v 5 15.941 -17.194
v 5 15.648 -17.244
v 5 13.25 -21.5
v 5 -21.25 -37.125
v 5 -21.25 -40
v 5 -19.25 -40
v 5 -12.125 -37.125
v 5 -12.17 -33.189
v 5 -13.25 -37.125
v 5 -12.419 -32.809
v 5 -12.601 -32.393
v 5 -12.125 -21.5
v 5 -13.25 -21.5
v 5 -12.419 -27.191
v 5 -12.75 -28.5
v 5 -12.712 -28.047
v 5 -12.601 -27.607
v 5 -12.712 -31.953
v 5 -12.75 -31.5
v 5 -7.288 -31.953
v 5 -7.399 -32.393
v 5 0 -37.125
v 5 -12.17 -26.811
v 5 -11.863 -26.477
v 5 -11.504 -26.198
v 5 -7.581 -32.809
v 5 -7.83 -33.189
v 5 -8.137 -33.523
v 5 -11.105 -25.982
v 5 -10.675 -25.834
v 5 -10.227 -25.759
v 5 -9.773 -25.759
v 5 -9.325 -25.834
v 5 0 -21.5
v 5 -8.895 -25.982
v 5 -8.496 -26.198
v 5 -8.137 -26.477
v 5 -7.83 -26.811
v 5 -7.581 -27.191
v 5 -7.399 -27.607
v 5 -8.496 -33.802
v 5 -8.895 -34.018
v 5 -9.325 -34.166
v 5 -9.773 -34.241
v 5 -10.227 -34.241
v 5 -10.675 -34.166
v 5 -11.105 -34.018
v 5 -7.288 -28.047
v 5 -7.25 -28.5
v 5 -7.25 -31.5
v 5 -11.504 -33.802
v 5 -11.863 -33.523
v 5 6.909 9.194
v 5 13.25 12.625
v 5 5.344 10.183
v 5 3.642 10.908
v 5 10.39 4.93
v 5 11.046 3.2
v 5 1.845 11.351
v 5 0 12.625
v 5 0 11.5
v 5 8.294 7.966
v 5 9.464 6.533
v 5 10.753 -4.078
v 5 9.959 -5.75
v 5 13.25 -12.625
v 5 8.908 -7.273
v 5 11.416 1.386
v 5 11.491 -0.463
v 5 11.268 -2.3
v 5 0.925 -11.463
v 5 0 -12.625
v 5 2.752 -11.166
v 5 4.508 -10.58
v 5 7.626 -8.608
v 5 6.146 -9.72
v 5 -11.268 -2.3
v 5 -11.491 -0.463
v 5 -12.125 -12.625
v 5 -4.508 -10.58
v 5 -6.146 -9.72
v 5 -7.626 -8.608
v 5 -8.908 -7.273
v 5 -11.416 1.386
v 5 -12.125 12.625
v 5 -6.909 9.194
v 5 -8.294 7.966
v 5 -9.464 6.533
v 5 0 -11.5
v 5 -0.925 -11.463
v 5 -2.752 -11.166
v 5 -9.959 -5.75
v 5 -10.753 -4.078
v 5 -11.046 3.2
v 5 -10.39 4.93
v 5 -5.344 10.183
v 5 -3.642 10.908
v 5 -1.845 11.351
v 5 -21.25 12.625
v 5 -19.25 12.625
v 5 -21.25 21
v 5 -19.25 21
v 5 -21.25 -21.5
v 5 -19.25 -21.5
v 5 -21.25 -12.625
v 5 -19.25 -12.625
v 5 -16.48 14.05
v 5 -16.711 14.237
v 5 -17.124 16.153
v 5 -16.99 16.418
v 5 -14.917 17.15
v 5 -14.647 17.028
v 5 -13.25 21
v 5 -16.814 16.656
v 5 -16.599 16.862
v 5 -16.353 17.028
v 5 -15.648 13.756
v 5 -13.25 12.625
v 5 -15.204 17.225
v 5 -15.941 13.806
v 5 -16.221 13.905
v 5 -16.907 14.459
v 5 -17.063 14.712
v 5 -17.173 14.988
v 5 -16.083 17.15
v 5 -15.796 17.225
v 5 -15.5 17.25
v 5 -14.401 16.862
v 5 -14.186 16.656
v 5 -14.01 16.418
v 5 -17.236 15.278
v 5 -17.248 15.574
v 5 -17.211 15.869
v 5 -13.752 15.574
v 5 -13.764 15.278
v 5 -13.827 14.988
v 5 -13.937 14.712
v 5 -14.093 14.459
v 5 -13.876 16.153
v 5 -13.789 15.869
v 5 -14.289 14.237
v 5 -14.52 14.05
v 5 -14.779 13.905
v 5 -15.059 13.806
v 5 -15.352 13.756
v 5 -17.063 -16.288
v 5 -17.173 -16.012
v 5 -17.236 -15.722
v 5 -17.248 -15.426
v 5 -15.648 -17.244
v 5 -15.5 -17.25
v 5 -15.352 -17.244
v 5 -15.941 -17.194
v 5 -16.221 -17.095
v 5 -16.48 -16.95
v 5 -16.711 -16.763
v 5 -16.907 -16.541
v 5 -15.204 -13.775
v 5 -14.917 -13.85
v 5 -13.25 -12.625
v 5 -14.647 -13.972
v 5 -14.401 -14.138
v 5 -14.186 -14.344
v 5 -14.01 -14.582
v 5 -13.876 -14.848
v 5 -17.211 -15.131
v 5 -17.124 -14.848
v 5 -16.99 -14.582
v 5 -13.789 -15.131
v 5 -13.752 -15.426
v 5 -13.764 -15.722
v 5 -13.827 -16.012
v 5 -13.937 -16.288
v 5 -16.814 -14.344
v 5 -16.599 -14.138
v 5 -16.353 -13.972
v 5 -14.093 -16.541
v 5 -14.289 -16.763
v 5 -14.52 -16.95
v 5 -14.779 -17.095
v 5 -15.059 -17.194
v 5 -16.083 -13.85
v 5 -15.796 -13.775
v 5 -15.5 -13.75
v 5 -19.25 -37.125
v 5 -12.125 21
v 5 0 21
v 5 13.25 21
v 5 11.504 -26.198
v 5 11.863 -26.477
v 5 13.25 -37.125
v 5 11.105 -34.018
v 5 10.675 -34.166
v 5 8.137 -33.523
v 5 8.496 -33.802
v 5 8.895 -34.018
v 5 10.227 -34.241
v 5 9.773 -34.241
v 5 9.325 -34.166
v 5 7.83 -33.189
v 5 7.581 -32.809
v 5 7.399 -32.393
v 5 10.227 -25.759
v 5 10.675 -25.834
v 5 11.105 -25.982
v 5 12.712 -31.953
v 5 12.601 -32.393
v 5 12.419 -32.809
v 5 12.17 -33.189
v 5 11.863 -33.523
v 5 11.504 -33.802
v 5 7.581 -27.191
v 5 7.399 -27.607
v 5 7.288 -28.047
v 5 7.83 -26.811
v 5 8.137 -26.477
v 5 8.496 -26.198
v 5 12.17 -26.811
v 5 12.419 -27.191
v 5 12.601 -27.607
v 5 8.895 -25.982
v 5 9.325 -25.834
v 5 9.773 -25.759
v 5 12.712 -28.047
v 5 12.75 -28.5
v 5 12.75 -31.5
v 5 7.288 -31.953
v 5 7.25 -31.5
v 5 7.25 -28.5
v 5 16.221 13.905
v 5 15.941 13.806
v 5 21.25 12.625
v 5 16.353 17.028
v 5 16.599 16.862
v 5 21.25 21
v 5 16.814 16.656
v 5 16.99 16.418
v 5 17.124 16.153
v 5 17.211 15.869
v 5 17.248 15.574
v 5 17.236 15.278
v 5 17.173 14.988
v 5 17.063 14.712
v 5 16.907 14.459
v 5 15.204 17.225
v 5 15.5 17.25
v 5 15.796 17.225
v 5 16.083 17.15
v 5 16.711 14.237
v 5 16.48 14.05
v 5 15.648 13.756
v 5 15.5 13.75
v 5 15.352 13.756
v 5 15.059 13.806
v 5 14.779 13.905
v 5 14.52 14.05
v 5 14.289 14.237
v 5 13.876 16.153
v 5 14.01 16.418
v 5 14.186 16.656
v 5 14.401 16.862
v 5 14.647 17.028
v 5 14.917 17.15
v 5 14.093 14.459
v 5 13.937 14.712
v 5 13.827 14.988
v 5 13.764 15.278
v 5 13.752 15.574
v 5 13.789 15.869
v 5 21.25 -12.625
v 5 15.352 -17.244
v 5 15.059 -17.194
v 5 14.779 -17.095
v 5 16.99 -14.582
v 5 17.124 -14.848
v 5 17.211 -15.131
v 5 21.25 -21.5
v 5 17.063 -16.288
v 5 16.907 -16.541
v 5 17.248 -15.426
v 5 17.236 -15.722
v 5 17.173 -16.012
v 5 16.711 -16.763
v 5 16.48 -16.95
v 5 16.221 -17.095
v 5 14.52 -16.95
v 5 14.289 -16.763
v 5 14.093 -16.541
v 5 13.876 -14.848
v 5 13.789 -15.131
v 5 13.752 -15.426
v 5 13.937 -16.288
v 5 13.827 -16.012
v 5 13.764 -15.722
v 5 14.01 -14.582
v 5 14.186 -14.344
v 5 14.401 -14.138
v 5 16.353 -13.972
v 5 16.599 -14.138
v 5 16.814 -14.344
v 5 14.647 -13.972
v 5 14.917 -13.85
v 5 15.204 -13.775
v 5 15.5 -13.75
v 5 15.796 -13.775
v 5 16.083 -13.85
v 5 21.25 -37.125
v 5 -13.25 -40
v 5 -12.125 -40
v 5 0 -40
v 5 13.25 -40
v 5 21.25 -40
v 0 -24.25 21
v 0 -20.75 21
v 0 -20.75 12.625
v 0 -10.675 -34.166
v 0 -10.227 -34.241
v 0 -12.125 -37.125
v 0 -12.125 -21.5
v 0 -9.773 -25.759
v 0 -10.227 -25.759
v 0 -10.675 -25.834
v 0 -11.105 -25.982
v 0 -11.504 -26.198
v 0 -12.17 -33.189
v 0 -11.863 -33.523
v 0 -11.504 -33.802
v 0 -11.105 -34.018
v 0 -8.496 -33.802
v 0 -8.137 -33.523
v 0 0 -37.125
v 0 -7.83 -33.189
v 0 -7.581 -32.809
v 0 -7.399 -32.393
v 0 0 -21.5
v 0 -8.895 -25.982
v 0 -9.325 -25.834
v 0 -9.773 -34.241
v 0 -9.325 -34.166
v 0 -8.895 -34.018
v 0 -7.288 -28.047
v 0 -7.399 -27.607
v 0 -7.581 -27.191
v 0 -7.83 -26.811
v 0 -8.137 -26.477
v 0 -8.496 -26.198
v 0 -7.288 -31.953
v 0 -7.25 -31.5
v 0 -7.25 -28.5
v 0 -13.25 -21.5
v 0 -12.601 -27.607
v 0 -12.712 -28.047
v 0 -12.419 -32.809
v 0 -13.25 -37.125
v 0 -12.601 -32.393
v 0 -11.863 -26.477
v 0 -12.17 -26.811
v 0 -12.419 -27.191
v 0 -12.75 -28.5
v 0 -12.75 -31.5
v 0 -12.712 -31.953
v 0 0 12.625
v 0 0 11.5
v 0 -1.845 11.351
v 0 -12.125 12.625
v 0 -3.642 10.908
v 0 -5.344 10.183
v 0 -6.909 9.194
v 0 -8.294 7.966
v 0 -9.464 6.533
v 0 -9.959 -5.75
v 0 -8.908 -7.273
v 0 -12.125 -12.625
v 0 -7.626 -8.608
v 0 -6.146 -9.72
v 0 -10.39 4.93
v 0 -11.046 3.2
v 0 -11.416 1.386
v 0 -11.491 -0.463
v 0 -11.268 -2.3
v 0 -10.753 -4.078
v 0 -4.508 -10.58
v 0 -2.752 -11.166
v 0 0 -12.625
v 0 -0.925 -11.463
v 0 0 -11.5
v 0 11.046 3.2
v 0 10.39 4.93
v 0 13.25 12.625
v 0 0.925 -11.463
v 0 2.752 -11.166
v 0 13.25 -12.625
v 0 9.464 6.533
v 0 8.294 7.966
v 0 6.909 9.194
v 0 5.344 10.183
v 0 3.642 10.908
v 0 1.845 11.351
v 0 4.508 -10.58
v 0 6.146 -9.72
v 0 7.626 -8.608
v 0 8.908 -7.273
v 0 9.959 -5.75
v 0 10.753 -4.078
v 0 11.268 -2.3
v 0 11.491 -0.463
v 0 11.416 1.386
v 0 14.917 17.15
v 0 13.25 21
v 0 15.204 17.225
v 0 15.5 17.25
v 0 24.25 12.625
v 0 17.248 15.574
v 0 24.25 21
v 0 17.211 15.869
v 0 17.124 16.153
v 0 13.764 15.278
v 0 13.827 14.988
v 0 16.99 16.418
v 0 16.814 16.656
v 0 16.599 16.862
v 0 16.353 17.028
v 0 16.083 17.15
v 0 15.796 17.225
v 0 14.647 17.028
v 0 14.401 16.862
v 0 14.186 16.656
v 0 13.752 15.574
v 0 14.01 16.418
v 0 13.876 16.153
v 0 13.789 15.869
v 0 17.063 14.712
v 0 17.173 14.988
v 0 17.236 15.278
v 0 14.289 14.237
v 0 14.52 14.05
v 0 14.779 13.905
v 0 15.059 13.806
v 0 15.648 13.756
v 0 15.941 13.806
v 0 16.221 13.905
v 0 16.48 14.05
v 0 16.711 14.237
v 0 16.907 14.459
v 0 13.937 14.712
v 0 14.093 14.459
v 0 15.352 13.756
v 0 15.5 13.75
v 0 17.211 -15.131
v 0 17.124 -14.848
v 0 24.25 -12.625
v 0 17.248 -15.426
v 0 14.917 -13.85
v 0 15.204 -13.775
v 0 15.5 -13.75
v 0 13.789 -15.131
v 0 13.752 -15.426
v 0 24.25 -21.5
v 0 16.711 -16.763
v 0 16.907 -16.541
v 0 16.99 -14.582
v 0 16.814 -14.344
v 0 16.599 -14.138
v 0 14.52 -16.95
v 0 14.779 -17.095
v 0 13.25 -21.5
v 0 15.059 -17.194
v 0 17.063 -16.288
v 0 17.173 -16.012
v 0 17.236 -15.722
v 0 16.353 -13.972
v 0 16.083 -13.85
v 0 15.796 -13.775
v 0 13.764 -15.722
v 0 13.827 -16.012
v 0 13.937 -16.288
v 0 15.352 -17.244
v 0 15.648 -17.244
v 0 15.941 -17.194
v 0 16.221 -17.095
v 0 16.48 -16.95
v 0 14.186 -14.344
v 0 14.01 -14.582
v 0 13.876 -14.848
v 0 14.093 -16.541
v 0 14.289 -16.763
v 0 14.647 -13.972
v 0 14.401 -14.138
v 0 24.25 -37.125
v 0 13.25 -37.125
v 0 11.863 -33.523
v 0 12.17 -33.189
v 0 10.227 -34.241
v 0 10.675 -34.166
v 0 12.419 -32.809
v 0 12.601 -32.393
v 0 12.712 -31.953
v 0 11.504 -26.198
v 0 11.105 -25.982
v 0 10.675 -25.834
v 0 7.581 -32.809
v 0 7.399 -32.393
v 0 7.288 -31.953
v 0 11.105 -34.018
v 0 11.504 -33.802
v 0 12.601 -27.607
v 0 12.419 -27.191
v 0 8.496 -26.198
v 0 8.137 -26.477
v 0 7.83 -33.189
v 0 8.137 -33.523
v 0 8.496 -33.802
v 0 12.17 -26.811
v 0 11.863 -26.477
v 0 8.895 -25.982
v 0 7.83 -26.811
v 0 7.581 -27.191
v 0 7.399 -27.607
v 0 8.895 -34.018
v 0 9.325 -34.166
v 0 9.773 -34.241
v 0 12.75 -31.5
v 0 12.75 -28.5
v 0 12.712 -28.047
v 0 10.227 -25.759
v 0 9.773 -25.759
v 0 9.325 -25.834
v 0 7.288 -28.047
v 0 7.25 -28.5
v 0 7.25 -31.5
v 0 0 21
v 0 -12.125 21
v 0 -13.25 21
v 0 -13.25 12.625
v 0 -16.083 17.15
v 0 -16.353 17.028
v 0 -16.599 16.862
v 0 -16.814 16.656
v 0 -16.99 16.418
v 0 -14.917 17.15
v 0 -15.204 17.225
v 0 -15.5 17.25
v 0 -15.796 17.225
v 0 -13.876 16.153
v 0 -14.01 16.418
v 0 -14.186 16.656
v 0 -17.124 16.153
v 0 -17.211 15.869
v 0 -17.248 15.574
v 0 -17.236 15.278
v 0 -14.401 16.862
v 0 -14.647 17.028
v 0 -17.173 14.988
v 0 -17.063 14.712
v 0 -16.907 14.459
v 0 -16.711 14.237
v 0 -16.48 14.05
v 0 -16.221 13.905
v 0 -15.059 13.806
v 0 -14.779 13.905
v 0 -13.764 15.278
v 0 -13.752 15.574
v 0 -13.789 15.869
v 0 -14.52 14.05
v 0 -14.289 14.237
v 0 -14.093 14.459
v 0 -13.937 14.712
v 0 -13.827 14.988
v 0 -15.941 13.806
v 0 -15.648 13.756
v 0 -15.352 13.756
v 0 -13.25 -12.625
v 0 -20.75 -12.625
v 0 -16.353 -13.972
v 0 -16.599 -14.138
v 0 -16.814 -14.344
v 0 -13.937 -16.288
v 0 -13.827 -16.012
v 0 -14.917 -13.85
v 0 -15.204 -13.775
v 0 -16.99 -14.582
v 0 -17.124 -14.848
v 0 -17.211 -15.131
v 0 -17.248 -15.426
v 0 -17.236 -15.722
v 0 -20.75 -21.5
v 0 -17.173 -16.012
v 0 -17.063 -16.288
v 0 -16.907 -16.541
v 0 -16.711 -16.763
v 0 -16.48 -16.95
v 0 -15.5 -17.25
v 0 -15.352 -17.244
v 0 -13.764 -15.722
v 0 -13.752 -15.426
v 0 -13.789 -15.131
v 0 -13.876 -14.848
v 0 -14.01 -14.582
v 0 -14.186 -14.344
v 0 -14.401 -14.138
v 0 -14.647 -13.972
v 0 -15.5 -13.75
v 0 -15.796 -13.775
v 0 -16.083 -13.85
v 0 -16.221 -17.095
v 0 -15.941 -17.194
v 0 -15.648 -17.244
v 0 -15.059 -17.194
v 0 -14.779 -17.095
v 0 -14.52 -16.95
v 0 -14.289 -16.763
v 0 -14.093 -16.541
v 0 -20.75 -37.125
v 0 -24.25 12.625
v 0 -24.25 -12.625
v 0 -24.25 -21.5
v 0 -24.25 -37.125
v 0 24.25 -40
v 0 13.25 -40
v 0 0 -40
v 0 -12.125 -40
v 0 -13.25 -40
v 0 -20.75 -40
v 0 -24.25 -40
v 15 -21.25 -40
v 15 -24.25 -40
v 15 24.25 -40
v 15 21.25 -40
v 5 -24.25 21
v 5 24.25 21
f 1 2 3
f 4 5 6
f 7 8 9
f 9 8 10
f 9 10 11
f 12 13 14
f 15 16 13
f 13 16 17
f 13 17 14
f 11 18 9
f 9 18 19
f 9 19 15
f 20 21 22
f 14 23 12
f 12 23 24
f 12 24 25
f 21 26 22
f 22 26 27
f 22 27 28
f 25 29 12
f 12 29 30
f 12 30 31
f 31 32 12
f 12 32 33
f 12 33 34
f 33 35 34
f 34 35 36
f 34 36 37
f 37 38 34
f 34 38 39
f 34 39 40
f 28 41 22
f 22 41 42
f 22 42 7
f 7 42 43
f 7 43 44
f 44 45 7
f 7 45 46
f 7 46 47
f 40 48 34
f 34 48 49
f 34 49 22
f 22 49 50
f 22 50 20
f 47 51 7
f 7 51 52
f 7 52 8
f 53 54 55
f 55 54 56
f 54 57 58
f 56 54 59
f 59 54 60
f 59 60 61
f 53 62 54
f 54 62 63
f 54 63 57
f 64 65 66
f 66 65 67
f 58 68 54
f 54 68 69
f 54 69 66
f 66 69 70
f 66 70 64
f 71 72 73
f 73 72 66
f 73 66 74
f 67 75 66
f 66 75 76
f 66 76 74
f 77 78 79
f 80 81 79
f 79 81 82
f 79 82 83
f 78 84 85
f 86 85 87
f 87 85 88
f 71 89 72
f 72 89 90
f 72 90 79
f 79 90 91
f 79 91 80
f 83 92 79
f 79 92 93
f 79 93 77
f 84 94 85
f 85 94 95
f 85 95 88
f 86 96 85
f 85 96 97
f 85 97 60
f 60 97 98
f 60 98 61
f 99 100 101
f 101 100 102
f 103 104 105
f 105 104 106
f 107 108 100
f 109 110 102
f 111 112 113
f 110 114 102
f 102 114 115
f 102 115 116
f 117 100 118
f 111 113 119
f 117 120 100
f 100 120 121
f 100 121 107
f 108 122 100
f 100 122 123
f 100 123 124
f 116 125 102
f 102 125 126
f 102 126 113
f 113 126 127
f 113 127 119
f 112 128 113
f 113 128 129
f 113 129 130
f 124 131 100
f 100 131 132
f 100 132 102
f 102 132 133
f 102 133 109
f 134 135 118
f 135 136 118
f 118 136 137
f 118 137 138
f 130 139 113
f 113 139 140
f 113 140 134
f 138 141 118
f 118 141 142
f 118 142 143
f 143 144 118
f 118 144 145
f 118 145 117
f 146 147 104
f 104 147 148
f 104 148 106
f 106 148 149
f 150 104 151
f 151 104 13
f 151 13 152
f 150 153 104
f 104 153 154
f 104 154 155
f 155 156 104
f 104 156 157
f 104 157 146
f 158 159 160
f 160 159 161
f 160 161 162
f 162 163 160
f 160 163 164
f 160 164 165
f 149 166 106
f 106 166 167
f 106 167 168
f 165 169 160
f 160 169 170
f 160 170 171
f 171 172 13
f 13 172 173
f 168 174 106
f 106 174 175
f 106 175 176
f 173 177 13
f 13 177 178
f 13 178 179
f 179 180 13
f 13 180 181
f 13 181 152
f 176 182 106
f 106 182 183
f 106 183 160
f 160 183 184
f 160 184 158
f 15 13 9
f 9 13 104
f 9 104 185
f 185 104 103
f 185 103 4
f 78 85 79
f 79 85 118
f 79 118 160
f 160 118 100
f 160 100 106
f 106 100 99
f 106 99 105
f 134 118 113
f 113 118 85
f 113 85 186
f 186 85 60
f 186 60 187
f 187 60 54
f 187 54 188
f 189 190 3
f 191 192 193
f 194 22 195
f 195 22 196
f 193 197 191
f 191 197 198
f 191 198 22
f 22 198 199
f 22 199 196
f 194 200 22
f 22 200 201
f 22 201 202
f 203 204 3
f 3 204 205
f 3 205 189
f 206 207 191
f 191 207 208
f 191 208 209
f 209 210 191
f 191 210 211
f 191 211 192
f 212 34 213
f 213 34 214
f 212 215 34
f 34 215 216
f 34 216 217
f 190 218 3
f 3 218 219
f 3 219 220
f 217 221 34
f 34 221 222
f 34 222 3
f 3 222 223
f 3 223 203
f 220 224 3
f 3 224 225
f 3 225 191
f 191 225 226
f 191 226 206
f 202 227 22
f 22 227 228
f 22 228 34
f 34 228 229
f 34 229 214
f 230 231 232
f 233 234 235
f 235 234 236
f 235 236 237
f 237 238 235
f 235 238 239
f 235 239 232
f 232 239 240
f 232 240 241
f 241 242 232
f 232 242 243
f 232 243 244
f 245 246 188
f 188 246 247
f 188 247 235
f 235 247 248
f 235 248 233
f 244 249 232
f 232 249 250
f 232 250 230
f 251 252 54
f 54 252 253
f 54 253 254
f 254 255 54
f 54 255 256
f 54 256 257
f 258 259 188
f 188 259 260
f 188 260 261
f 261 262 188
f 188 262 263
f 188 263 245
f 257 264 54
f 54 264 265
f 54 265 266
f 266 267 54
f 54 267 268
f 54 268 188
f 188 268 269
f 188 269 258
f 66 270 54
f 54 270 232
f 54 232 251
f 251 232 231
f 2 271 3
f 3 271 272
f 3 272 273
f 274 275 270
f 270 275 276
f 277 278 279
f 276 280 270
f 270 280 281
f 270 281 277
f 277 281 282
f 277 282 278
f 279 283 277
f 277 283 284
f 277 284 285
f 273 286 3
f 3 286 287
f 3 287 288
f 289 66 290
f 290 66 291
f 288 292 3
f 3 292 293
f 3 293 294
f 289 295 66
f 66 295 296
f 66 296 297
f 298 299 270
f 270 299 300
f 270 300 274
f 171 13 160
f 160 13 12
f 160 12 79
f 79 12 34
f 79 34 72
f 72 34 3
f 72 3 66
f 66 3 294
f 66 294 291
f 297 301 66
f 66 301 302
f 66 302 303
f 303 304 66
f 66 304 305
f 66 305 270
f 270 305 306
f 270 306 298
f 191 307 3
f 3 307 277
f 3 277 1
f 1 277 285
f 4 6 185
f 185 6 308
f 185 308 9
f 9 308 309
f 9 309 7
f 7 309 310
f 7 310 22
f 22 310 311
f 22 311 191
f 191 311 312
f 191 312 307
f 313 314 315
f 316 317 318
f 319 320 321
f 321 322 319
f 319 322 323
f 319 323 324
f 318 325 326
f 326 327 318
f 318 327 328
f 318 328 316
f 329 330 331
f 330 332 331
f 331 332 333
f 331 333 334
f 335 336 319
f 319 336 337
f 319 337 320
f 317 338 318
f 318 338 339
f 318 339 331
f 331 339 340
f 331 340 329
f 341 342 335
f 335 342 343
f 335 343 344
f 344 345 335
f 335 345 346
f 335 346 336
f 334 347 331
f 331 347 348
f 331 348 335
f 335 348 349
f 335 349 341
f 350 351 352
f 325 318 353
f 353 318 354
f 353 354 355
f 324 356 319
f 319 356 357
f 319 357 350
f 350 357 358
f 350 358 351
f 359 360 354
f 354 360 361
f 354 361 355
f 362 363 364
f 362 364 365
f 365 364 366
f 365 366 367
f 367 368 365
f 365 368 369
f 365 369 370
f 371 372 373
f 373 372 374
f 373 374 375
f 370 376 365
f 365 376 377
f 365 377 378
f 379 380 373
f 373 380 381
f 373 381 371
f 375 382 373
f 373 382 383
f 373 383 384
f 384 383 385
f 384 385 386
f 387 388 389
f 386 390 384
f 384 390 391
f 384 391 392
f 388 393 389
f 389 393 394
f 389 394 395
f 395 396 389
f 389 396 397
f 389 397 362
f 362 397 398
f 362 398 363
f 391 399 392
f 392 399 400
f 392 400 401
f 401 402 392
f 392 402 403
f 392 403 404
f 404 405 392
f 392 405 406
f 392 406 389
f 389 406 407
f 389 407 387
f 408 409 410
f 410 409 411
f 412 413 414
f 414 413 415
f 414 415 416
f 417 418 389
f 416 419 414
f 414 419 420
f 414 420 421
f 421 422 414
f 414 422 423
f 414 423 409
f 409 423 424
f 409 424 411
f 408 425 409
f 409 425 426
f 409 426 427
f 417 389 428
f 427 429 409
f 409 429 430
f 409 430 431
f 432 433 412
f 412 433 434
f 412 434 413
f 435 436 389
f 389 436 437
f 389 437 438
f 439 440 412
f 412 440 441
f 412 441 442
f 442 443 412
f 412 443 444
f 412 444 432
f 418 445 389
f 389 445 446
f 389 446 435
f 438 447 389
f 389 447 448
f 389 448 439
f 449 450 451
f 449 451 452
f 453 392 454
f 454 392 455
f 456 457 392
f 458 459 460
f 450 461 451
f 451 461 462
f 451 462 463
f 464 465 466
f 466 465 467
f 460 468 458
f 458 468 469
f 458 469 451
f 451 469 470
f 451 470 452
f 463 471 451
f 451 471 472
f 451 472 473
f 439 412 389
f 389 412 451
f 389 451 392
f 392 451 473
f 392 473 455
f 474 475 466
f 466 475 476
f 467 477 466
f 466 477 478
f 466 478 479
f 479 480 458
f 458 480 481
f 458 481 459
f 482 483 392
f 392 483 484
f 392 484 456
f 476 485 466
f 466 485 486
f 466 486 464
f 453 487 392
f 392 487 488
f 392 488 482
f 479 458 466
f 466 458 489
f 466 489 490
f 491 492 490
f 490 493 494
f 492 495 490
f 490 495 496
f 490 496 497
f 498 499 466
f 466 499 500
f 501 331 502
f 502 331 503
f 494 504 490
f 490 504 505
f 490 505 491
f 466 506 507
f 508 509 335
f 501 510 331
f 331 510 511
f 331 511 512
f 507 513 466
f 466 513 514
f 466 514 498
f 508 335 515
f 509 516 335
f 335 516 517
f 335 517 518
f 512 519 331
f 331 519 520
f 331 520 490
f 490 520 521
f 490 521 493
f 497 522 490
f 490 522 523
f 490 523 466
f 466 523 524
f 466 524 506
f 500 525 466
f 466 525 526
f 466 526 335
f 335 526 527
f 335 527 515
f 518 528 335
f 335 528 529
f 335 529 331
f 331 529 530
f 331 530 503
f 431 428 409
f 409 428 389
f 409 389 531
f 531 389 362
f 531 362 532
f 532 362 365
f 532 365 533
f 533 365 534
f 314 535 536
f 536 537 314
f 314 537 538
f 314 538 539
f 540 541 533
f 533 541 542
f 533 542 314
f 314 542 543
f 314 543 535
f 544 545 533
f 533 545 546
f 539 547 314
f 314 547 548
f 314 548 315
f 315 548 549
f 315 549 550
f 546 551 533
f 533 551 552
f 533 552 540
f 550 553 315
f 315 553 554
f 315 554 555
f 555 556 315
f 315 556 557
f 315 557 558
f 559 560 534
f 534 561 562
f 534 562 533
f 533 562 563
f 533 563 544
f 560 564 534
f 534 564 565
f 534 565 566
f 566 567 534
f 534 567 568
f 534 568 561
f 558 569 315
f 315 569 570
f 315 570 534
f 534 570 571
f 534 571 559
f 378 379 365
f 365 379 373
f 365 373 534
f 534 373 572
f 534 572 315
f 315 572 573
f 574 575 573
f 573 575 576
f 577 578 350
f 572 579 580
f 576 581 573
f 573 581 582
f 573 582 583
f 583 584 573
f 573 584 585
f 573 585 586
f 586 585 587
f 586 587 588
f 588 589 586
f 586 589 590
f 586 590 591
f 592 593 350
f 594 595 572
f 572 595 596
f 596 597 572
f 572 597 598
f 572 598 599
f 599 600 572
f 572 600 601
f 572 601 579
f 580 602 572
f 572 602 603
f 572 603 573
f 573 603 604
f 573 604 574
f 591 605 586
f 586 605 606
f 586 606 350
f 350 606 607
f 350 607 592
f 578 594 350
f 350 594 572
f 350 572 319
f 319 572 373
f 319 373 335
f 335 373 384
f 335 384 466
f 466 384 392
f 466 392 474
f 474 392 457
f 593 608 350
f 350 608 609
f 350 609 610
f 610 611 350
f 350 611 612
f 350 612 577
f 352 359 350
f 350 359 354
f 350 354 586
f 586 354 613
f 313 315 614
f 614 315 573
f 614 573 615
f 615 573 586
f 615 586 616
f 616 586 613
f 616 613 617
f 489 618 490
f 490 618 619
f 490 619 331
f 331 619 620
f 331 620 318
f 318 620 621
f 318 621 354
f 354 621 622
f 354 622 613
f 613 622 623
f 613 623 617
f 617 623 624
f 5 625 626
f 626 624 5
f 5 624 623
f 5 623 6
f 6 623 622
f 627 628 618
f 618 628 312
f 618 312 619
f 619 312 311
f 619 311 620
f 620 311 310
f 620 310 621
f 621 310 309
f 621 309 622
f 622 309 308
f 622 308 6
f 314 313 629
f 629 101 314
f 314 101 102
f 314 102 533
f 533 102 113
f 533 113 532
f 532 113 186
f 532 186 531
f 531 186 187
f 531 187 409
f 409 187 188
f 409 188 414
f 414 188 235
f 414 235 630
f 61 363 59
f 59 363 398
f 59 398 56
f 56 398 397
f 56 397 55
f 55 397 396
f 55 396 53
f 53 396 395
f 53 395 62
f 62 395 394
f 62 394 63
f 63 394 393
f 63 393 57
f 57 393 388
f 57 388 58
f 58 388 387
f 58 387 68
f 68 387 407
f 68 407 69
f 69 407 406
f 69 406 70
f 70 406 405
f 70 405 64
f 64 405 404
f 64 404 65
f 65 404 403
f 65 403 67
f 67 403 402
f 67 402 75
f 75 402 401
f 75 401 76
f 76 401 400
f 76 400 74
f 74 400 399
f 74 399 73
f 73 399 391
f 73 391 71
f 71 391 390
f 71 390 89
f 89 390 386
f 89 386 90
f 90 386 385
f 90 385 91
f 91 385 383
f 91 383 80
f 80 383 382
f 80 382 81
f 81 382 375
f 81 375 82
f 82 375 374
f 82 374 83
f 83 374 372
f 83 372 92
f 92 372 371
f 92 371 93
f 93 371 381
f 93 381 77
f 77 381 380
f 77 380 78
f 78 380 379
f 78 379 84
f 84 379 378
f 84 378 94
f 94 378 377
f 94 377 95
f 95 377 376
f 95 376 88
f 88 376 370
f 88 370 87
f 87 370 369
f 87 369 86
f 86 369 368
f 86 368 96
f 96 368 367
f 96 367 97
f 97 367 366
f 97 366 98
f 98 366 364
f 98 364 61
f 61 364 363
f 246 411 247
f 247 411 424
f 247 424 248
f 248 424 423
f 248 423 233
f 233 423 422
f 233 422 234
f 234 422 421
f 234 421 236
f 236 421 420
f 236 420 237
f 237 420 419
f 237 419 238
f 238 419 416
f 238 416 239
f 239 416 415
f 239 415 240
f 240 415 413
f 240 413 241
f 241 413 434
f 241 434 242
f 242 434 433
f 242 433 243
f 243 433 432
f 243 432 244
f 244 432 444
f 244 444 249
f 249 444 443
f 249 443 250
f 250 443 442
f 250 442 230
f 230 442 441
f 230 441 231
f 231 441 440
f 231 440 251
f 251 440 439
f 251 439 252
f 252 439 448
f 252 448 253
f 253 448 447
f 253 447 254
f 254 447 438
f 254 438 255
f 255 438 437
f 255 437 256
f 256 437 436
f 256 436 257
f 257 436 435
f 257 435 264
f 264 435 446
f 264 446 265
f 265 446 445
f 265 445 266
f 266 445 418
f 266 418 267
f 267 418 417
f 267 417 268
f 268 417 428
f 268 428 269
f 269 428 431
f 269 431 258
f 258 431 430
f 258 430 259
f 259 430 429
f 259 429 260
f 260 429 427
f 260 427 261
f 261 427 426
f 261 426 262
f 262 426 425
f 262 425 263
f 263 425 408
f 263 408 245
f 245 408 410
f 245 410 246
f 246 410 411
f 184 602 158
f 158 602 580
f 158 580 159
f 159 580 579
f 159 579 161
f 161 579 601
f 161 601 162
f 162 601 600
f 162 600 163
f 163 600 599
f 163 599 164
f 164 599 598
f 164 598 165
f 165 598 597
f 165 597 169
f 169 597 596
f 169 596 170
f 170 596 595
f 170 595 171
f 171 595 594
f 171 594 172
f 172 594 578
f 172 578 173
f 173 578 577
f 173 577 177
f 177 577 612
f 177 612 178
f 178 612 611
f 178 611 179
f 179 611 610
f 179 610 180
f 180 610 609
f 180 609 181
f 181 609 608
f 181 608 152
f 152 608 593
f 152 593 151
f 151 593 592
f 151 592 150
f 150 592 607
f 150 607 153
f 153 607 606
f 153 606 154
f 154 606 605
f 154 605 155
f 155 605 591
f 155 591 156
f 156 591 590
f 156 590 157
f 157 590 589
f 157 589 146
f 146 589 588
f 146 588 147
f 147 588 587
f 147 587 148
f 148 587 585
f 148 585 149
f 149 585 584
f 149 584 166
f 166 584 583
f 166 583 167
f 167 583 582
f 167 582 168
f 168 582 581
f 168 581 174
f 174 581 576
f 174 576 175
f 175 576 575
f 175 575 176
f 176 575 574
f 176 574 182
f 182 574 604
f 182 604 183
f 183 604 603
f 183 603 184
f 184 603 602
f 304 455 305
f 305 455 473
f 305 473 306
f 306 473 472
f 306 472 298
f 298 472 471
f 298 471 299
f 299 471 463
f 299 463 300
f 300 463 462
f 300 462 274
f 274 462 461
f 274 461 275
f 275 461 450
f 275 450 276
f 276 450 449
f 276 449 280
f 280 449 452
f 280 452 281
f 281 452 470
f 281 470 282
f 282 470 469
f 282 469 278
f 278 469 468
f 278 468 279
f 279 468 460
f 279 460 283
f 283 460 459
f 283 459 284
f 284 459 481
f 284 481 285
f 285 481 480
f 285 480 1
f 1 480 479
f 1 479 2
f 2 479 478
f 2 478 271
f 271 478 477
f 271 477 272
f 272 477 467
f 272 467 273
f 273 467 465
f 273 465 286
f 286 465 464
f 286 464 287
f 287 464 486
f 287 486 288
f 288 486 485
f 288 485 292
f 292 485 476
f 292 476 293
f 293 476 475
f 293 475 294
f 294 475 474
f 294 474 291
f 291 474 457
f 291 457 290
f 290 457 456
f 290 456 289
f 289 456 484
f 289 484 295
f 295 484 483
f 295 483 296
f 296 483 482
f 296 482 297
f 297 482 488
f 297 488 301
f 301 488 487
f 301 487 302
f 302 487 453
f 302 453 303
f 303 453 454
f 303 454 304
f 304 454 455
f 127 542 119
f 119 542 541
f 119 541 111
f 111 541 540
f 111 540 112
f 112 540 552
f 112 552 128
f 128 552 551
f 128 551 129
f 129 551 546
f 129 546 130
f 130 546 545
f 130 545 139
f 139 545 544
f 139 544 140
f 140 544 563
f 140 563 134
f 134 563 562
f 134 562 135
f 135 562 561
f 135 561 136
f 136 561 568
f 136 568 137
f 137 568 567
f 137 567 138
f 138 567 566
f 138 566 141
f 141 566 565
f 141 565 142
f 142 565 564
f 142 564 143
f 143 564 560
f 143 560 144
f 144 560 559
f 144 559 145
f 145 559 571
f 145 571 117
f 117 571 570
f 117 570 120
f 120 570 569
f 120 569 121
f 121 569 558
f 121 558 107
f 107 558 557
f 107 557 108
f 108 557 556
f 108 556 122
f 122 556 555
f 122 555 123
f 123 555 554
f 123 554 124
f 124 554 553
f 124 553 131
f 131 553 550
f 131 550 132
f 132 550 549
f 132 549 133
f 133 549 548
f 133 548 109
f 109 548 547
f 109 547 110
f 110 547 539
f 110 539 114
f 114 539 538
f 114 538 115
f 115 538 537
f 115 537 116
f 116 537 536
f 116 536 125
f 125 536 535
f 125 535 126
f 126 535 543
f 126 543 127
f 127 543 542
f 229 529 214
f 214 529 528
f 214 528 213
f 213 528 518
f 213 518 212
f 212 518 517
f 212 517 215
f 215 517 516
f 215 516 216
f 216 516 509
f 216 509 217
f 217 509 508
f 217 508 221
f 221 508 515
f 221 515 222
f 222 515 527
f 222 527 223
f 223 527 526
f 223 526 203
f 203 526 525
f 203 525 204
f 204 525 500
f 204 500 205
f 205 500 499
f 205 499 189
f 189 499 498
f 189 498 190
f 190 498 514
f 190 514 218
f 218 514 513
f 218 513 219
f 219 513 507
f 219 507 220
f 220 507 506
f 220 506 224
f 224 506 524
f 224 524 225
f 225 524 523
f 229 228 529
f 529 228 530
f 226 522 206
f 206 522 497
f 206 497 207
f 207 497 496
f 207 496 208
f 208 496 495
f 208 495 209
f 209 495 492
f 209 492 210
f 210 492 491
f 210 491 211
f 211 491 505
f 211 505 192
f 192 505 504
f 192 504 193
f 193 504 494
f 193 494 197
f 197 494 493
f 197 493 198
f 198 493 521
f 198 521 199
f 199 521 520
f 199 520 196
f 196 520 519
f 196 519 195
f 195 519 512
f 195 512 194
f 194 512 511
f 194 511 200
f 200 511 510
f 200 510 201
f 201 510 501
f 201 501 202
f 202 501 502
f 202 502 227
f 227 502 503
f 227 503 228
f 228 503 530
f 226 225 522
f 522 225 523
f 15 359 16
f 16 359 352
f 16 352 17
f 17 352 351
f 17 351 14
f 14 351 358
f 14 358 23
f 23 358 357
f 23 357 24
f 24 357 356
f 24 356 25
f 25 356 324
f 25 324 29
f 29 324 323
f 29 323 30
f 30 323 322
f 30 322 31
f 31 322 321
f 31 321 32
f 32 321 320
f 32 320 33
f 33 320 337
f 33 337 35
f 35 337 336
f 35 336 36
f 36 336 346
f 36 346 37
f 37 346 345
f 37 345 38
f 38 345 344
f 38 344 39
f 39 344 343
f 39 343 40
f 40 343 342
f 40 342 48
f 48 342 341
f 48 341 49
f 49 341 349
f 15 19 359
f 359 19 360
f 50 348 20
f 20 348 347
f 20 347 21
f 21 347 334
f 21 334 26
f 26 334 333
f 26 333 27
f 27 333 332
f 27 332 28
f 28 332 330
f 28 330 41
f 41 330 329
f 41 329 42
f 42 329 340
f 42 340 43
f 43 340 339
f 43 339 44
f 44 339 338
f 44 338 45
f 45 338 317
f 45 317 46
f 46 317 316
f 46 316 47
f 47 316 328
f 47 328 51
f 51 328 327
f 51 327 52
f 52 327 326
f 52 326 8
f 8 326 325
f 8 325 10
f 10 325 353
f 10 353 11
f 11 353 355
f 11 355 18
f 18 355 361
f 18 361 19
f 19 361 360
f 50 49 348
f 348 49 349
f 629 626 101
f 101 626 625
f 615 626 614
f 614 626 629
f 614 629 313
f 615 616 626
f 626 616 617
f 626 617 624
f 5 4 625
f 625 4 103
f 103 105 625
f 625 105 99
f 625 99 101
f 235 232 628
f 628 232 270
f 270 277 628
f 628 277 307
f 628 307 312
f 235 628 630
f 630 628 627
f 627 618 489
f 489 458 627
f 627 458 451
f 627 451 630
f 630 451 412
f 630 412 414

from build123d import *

# Parameters (mm, degrees)
SKETCH2_W           = 61
SKETCH2_H           = 42.5
SKETCH2_R           = 11.5
SKETCH2_R_2         = 1.75
BOSS_EXTRUDE2_DEPTH = 5
BOSS_EXTRUDE3_DEPTH = 3
LPATTERN1_COUNT     = 2
LPATTERN1_PITCH     = 45.5


with BuildPart() as part:
    # Sketch2 → Boss-Extrude2 (new body)
    with BuildSketch(Plane(origin=(0, 0, 0), x_dir=(0, 0, -1), z_dir=(1, 0, 0))):
        with Locations((9.5, 0)):
            Rectangle(SKETCH2_W, SKETCH2_H)
        Circle(SKETCH2_R, mode=Mode.SUBTRACT)
        with Locations((-15.5, 15.5)):
            Circle(SKETCH2_R_2, mode=Mode.SUBTRACT)
        with Locations((15.5, -15.5)):
            Circle(SKETCH2_R_2, mode=Mode.SUBTRACT)
        with Locations((15.5, 15.5)):
            Circle(SKETCH2_R_2, mode=Mode.SUBTRACT)
        with Locations((-15.5, -15.5)):
            Circle(SKETCH2_R_2, mode=Mode.SUBTRACT)
        with BuildLine():
            Line((28.5, 12.75), (31.5, 12.75))
            ThreePointArc((31.5, 12.75), (34.25, 10), (31.5, 7.25))
            Line((31.5, 7.25), (28.5, 7.25))
            ThreePointArc((28.5, 7.25), (25.75, 10), (28.5, 12.75))
        make_face(mode=Mode.SUBTRACT)
        with BuildLine():
            Line((28.5, -12.75), (31.5, -12.75))
            ThreePointArc((31.5, -12.75), (34.25, -10), (31.5, -7.25))
            Line((31.5, -7.25), (28.5, -7.25))
            ThreePointArc((28.5, -7.25), (25.75, -10), (28.5, -12.75))
        make_face(mode=Mode.SUBTRACT)
    extrude(amount=BOSS_EXTRUDE2_DEPTH)

    # Sketch4 → Boss-Extrude3 (add)
    with BuildSketch(Plane.XZ.offset(21.25)):
        Polygon((0, -40), (15, -40), (5, 21), (0, 21), align=None)
    boss_extrude3 = extrude(amount=BOSS_EXTRUDE3_DEPTH)

    # LPattern1: Boss-Extrude3 ×2
    with Locations(*[(0, i * LPATTERN1_PITCH, 0) for i in range(1, LPATTERN1_COUNT)]):
        add(boss_extrude3)


solid = part.part
